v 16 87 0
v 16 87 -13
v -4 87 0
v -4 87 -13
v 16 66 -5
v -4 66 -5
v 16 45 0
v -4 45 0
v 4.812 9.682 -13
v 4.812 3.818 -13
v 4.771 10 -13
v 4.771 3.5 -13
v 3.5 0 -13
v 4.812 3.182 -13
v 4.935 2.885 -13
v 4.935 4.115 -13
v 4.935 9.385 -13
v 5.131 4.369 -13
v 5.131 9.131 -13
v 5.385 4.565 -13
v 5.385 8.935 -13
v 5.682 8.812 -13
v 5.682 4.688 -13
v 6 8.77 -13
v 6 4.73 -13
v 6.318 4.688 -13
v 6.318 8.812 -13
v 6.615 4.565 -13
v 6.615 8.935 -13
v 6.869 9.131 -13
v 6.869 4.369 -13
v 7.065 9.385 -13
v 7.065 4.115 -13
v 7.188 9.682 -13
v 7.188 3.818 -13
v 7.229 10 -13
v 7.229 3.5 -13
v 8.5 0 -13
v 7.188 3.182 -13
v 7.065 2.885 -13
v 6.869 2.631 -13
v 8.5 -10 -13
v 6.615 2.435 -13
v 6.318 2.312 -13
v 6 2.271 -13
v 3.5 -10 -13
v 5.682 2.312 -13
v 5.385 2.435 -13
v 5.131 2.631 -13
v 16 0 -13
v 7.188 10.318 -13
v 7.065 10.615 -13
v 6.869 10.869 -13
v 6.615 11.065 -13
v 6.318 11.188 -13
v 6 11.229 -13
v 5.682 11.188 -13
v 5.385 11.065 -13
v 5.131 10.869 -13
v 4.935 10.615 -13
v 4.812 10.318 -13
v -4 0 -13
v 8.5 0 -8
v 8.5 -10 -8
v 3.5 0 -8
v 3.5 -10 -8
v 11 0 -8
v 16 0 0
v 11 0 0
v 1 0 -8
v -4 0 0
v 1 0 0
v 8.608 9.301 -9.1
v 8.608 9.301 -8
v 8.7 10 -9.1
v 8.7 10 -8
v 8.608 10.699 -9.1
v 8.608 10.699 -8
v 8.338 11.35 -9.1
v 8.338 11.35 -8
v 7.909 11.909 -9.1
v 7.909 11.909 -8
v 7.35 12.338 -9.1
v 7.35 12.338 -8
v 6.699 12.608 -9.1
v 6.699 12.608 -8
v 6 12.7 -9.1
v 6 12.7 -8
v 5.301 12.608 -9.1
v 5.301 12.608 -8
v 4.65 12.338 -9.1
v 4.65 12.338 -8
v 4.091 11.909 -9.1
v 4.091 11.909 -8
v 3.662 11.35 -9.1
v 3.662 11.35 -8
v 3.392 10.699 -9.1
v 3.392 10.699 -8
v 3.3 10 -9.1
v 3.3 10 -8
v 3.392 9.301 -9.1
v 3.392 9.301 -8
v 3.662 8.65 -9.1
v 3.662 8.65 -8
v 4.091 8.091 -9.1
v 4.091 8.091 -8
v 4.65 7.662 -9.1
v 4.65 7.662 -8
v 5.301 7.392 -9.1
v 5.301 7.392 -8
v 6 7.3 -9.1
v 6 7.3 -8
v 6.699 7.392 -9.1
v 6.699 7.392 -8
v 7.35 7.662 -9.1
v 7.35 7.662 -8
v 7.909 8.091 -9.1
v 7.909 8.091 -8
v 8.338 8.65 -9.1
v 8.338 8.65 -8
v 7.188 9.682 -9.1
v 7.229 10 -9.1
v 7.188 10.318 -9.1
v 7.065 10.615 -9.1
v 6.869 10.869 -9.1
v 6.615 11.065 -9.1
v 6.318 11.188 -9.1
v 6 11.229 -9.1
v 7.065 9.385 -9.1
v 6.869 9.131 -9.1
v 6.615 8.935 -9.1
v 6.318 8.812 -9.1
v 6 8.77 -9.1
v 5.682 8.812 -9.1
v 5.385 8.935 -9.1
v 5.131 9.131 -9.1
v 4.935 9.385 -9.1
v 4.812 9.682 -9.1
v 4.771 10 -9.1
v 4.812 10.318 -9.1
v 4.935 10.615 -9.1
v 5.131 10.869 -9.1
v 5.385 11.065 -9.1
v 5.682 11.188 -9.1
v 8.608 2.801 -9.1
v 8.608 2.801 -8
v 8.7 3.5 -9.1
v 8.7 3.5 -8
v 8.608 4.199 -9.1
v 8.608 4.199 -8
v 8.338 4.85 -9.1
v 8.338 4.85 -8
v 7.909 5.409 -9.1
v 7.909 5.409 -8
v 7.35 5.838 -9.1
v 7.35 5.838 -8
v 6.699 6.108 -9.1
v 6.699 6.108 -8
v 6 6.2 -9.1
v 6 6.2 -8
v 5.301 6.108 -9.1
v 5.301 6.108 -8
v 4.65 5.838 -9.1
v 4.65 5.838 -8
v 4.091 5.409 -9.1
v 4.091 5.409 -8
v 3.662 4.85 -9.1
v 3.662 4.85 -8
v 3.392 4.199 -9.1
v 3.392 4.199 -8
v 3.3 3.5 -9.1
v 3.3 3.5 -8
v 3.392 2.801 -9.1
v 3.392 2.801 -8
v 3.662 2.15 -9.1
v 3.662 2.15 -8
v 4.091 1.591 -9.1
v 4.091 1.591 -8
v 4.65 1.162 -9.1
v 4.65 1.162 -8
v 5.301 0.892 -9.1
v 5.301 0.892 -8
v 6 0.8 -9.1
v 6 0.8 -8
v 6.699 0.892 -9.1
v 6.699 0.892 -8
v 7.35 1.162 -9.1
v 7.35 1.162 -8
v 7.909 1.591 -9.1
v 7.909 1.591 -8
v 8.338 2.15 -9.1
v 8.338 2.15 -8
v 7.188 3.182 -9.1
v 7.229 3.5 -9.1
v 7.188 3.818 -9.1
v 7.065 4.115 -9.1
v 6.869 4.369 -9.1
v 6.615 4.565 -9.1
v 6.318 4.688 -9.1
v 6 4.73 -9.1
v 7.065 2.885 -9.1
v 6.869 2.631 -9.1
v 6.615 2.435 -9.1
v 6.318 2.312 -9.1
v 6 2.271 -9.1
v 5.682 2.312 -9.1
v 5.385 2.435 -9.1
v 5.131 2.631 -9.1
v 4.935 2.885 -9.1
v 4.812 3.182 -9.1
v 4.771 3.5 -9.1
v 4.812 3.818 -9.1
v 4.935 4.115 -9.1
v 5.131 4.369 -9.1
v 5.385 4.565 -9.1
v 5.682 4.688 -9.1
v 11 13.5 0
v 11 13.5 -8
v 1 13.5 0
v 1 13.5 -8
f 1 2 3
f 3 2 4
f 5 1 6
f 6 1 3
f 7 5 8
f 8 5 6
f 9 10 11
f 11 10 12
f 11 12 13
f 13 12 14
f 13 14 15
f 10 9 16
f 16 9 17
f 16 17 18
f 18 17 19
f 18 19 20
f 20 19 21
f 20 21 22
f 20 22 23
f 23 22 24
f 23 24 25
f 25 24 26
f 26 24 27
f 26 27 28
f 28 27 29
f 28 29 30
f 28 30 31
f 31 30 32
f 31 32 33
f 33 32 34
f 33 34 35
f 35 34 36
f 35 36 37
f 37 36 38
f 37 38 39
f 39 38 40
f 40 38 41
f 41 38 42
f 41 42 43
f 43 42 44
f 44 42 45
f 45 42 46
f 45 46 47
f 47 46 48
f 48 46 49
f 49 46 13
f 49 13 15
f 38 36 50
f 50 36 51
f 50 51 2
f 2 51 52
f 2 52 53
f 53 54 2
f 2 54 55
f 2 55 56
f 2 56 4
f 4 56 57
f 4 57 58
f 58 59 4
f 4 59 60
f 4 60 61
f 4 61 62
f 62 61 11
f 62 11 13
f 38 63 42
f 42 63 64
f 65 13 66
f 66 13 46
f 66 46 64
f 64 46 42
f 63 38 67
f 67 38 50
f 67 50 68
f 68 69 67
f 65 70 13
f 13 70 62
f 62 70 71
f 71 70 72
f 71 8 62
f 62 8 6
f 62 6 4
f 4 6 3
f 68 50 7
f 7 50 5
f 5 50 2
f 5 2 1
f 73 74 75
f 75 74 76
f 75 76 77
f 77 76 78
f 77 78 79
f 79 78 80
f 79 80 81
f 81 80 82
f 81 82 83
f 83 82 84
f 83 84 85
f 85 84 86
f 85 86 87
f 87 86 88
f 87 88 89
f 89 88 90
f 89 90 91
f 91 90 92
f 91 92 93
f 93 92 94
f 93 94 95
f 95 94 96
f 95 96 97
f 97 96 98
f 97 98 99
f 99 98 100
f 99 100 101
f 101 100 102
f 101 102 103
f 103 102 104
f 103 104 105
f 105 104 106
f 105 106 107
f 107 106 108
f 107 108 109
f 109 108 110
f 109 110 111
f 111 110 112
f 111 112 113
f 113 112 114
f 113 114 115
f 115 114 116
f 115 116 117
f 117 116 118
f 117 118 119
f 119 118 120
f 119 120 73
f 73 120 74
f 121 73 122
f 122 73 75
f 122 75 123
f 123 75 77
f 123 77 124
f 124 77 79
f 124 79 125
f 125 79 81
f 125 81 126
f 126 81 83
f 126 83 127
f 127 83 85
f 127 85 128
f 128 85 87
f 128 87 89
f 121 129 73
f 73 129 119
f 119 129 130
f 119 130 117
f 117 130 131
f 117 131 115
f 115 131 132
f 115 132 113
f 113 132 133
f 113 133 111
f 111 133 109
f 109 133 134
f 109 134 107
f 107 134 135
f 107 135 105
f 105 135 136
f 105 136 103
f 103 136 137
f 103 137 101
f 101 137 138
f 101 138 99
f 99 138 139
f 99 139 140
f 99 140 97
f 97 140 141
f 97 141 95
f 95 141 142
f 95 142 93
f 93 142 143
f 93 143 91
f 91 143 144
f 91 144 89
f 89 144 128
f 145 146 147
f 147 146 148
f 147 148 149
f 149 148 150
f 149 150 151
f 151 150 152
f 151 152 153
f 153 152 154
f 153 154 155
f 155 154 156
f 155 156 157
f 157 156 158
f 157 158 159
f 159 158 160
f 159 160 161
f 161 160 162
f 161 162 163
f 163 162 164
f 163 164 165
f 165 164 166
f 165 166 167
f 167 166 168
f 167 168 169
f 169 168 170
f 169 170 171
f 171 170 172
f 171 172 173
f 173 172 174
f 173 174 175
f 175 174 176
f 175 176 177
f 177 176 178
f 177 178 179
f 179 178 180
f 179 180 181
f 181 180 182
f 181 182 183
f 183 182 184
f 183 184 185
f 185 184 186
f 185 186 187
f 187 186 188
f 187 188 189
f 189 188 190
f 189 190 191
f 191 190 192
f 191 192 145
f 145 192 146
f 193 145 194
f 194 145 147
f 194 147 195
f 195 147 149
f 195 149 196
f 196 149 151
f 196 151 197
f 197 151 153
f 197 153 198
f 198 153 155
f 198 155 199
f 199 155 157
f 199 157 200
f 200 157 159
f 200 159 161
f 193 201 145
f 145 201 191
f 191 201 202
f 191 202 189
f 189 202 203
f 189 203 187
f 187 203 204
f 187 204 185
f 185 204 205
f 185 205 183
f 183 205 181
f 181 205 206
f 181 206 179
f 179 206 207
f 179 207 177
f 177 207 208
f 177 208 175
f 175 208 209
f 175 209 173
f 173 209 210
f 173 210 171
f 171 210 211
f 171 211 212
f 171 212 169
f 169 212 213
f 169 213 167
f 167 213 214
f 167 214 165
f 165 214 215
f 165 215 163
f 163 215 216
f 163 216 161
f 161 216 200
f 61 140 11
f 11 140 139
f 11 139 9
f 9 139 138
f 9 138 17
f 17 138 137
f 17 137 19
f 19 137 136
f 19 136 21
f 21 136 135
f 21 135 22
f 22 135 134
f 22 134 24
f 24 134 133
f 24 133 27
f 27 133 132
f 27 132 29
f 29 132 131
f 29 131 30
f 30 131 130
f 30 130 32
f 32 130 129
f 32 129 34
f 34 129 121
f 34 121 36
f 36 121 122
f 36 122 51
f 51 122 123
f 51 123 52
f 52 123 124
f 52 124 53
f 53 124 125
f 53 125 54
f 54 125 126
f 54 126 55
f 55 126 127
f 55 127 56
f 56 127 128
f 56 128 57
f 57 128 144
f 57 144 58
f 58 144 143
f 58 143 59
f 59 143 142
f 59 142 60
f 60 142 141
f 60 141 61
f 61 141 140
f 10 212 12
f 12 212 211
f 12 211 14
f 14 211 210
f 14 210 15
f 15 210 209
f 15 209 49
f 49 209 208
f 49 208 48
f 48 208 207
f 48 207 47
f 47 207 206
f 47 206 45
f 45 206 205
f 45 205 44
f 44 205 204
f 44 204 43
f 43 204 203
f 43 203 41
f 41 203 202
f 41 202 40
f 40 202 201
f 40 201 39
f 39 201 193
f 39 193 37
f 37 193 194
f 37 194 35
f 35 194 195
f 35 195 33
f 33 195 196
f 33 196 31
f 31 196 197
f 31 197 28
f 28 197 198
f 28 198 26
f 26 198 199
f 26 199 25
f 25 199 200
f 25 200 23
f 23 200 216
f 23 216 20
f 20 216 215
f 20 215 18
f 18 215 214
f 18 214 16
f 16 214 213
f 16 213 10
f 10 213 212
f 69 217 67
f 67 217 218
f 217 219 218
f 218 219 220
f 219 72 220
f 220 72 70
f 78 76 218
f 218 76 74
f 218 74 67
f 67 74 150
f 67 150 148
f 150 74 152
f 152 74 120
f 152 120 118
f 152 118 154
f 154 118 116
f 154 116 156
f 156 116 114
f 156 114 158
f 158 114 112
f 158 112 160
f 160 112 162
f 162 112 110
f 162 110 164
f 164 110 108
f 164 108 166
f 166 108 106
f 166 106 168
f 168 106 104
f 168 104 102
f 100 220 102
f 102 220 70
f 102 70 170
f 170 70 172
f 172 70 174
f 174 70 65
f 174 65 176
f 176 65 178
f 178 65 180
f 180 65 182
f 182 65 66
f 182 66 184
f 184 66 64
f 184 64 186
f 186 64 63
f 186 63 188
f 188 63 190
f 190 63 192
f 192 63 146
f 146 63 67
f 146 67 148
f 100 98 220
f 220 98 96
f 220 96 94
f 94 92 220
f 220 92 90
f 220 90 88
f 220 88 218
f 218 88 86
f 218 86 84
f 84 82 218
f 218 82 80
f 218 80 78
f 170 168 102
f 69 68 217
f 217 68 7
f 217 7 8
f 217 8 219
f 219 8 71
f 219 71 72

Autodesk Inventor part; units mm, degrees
ref_plane "YZ Plane" through (0, 0, 0) normal (1, 0, 0) x (0, 1, 0)
ref_plane "XZ Plane" through (0, 0, 0) normal (0, 1, 0) x (-1, 0, 0)
sketch "Sketch2" plane through (0, 0, 0) normal (1, 0, 0) x (0, 1, 0)
  line L0 (0, 0) -> (15, 0)
  line L1 (15, 0) -> (15, -10)
  line L2 (15, -10) -> (0, -10)
  line L3 (0, -10) -> (0, 0)
  dimension "d4" = 15
  dimension "d5" = 10
extrude "Extrusion2" add sketch "Sketch2" along normal blind 12
sketch "Sketch3" plane through (0, 0, 0) normal (0, 0, 1) x (1, 0, 0)
  line L0 (0, 0) -> (1, 0)
  line L1 (0, 0) -> (12, 0) projected
  line L2 (1, 0) -> (1, 13.5)
  line L3 (1, 13.5) -> (11, 13.5)
  line L4 (11, 13.5) -> (11, 0)
  line L5 (11, 0) -> (1, 0)
  dimension "d8" = 1
  dimension "d9" = 13.5
  dimension "d10" = 10
extrude "Extrusion3" cut sketch "Sketch3" against normal blind 8
sketch "Sketch4" plane through (0, 0, -10) normal (0, 0, -1) x (-1, 0, 0)
  line L0 (0, 15) -> (-12, 15) projected
  line L1 (0, 0) -> (-12, 0) projected
  line L2 (-12, 15) -> (0, 15)
  line L3 (0, 15) -> (0, 0)
  line L4 (0, 0) -> (-12, 0)
  line L5 (-12, 0) -> (-12, 15)
extrude "Extrusion4" add sketch "Sketch4" along normal blind 2
sketch "Sketch5" plane through (0, 0, -8) normal (0, 0, 1) x (1, 0, 0)
  line L0 (1, 13.5) -> (11, 13.5) projected
  line L1 (6, 13.5) -> (6, 10)
  line L2 (6, 10) -> (6, 3.5)
  circle A0 centre (6, 10) radius 1.2295
  circle A1 centre (6, 3.5) radius 1.2295
  point P0 (0, 0)
  dimension "d15" = 3.5
  dimension "d16" = 6.5
  dimension "d17" = 2.459
  dimension "d18" = 2.459
extrude "Extrusion5" cut sketch "Sketch5" against normal blind 4
sketch "Sketch6" plane through (0, 0, -8) normal (0, 0, 1) x (1, 0, 0)
  circle A0 centre (6, 10) radius 1.2295 projected
  circle A1 centre (6, 10) radius 2.7
  circle A2 centre (6, 3.5) radius 1.2295 projected
  circle A3 centre (6, 3.5) radius 2.7
  point P0 (0, 0)
  dimension "d21" = 5.4
  dimension "d22" = 5.4
extrude "Extrusion6" cut sketch "Sketch6" against normal blind 1.1
sketch "Sketch15" plane through (12, 0, 0) normal (1, 0, 0) x (0, 0, -1)
  line L0 (0, 15) -> (12, 15) projected
  line L1 (12, 15) -> (12, 0) projected
  line L2 (0, 15) -> (12, 15)
  line L3 (12, 15) -> (12, 0)
  line L4 (12, 0) -> (0, 0)
  line L5 (0, 0) -> (0, 15)
extrude "Extrusion14" add sketch "Sketch15" along normal blind 4
ref_plane "Work Plane1" through (6, 0, 0) normal (1, 0, 0) x (0, 0, -1)
mirror "Mirror1" about plane through (6, 0, 0) normal (1, 0, 0) of "Extrusion14"
sketch "Sketch16" plane through (1, 0, -8) normal (0, -1, 0) x (1, 0, 0)
  line L0 (10, 0) -> (0, 0) projected
  line L1 (5, 0) -> (7.5, 0)
  line L2 (7.5, 0) -> (7.5, -4)
  line L3 (-5, -4) -> (15, -4) projected
  line L4 (7.5, -4) -> (2.5, -4)
  line L5 (2.5, -4) -> (2.5, 0)
  line L6 (2.5, 0) -> (5, 0)
  point P0 (-1, 8)
  dimension "d61" = 2.5
  dimension "d62" = 4
  dimension "d63" = 5
  dimension "d64" = 4
extrude "Extrusion15" add sketch "Sketch16" along normal blind 10
sketch "Sketch18" plane through (0, 0, -12) normal (0, 0, -1) x (-1, 0, 0)
  line L0 (-16, 15) -> (4, 15) projected
  line L1 (4, 0) -> (-3.5, 0) projected
  line L2 (-16, 15) -> (4, 15)
  line L3 (4, 15) -> (4, 0)
  line L4 (4, 0) -> (-16, 0)
  line L5 (-16, 0) -> (-16, 15)
  line L6 (-8.5, -10) -> (-3.5, -10) projected
  line L7 (-3.5, 0) -> (-8.5, 0)
  line L8 (-8.5, 0) -> (-8.5, -10)
  line L9 (-8.5, -10) -> (-3.5, -10)
  line L10 (-3.5, -10) -> (-3.5, 0)
  circle A0 centre (-6, 3.5) radius 1.2295 projected
  circle A1 centre (-6, 3.5) radius 1.2295
  circle A2 centre (-6, 10) radius 1.2295 projected
  circle A3 centre (-6, 10) radius 1.2295
  point P0 (0, 0)
extrude "Extrusion16" add sketch "Sketch18" along normal blind 1
sketch "Sketch19" plane through (16, 0, 0) normal (1, 0, 0) x (0, 0, -1)
  line L0 (0, 15) -> (13, 15) projected
  line L1 (0, 15) -> (0, 40)
  line L2 (13, 45) -> (13, 15)
  line L3 (13, 56) -> (13, 45)
  line L4 (0, 45) -> (0, 40)
  line L5 (13, 60) -> (13, 56)
  line L6 (13, 61) -> (13, 60)
  line L7 (0, 87) -> (13, 87)
  line L8 (13, 87) -> (13, 61)
  line L9 (5, 66) -> (0, 87)
  line L10 (5, 66) -> (0, 45)
  point P0 (0, 0)
extrude "Extrusion17" add sketch "Sketch19" against normal blind 20
properties part number "40mm_x_20mm"
